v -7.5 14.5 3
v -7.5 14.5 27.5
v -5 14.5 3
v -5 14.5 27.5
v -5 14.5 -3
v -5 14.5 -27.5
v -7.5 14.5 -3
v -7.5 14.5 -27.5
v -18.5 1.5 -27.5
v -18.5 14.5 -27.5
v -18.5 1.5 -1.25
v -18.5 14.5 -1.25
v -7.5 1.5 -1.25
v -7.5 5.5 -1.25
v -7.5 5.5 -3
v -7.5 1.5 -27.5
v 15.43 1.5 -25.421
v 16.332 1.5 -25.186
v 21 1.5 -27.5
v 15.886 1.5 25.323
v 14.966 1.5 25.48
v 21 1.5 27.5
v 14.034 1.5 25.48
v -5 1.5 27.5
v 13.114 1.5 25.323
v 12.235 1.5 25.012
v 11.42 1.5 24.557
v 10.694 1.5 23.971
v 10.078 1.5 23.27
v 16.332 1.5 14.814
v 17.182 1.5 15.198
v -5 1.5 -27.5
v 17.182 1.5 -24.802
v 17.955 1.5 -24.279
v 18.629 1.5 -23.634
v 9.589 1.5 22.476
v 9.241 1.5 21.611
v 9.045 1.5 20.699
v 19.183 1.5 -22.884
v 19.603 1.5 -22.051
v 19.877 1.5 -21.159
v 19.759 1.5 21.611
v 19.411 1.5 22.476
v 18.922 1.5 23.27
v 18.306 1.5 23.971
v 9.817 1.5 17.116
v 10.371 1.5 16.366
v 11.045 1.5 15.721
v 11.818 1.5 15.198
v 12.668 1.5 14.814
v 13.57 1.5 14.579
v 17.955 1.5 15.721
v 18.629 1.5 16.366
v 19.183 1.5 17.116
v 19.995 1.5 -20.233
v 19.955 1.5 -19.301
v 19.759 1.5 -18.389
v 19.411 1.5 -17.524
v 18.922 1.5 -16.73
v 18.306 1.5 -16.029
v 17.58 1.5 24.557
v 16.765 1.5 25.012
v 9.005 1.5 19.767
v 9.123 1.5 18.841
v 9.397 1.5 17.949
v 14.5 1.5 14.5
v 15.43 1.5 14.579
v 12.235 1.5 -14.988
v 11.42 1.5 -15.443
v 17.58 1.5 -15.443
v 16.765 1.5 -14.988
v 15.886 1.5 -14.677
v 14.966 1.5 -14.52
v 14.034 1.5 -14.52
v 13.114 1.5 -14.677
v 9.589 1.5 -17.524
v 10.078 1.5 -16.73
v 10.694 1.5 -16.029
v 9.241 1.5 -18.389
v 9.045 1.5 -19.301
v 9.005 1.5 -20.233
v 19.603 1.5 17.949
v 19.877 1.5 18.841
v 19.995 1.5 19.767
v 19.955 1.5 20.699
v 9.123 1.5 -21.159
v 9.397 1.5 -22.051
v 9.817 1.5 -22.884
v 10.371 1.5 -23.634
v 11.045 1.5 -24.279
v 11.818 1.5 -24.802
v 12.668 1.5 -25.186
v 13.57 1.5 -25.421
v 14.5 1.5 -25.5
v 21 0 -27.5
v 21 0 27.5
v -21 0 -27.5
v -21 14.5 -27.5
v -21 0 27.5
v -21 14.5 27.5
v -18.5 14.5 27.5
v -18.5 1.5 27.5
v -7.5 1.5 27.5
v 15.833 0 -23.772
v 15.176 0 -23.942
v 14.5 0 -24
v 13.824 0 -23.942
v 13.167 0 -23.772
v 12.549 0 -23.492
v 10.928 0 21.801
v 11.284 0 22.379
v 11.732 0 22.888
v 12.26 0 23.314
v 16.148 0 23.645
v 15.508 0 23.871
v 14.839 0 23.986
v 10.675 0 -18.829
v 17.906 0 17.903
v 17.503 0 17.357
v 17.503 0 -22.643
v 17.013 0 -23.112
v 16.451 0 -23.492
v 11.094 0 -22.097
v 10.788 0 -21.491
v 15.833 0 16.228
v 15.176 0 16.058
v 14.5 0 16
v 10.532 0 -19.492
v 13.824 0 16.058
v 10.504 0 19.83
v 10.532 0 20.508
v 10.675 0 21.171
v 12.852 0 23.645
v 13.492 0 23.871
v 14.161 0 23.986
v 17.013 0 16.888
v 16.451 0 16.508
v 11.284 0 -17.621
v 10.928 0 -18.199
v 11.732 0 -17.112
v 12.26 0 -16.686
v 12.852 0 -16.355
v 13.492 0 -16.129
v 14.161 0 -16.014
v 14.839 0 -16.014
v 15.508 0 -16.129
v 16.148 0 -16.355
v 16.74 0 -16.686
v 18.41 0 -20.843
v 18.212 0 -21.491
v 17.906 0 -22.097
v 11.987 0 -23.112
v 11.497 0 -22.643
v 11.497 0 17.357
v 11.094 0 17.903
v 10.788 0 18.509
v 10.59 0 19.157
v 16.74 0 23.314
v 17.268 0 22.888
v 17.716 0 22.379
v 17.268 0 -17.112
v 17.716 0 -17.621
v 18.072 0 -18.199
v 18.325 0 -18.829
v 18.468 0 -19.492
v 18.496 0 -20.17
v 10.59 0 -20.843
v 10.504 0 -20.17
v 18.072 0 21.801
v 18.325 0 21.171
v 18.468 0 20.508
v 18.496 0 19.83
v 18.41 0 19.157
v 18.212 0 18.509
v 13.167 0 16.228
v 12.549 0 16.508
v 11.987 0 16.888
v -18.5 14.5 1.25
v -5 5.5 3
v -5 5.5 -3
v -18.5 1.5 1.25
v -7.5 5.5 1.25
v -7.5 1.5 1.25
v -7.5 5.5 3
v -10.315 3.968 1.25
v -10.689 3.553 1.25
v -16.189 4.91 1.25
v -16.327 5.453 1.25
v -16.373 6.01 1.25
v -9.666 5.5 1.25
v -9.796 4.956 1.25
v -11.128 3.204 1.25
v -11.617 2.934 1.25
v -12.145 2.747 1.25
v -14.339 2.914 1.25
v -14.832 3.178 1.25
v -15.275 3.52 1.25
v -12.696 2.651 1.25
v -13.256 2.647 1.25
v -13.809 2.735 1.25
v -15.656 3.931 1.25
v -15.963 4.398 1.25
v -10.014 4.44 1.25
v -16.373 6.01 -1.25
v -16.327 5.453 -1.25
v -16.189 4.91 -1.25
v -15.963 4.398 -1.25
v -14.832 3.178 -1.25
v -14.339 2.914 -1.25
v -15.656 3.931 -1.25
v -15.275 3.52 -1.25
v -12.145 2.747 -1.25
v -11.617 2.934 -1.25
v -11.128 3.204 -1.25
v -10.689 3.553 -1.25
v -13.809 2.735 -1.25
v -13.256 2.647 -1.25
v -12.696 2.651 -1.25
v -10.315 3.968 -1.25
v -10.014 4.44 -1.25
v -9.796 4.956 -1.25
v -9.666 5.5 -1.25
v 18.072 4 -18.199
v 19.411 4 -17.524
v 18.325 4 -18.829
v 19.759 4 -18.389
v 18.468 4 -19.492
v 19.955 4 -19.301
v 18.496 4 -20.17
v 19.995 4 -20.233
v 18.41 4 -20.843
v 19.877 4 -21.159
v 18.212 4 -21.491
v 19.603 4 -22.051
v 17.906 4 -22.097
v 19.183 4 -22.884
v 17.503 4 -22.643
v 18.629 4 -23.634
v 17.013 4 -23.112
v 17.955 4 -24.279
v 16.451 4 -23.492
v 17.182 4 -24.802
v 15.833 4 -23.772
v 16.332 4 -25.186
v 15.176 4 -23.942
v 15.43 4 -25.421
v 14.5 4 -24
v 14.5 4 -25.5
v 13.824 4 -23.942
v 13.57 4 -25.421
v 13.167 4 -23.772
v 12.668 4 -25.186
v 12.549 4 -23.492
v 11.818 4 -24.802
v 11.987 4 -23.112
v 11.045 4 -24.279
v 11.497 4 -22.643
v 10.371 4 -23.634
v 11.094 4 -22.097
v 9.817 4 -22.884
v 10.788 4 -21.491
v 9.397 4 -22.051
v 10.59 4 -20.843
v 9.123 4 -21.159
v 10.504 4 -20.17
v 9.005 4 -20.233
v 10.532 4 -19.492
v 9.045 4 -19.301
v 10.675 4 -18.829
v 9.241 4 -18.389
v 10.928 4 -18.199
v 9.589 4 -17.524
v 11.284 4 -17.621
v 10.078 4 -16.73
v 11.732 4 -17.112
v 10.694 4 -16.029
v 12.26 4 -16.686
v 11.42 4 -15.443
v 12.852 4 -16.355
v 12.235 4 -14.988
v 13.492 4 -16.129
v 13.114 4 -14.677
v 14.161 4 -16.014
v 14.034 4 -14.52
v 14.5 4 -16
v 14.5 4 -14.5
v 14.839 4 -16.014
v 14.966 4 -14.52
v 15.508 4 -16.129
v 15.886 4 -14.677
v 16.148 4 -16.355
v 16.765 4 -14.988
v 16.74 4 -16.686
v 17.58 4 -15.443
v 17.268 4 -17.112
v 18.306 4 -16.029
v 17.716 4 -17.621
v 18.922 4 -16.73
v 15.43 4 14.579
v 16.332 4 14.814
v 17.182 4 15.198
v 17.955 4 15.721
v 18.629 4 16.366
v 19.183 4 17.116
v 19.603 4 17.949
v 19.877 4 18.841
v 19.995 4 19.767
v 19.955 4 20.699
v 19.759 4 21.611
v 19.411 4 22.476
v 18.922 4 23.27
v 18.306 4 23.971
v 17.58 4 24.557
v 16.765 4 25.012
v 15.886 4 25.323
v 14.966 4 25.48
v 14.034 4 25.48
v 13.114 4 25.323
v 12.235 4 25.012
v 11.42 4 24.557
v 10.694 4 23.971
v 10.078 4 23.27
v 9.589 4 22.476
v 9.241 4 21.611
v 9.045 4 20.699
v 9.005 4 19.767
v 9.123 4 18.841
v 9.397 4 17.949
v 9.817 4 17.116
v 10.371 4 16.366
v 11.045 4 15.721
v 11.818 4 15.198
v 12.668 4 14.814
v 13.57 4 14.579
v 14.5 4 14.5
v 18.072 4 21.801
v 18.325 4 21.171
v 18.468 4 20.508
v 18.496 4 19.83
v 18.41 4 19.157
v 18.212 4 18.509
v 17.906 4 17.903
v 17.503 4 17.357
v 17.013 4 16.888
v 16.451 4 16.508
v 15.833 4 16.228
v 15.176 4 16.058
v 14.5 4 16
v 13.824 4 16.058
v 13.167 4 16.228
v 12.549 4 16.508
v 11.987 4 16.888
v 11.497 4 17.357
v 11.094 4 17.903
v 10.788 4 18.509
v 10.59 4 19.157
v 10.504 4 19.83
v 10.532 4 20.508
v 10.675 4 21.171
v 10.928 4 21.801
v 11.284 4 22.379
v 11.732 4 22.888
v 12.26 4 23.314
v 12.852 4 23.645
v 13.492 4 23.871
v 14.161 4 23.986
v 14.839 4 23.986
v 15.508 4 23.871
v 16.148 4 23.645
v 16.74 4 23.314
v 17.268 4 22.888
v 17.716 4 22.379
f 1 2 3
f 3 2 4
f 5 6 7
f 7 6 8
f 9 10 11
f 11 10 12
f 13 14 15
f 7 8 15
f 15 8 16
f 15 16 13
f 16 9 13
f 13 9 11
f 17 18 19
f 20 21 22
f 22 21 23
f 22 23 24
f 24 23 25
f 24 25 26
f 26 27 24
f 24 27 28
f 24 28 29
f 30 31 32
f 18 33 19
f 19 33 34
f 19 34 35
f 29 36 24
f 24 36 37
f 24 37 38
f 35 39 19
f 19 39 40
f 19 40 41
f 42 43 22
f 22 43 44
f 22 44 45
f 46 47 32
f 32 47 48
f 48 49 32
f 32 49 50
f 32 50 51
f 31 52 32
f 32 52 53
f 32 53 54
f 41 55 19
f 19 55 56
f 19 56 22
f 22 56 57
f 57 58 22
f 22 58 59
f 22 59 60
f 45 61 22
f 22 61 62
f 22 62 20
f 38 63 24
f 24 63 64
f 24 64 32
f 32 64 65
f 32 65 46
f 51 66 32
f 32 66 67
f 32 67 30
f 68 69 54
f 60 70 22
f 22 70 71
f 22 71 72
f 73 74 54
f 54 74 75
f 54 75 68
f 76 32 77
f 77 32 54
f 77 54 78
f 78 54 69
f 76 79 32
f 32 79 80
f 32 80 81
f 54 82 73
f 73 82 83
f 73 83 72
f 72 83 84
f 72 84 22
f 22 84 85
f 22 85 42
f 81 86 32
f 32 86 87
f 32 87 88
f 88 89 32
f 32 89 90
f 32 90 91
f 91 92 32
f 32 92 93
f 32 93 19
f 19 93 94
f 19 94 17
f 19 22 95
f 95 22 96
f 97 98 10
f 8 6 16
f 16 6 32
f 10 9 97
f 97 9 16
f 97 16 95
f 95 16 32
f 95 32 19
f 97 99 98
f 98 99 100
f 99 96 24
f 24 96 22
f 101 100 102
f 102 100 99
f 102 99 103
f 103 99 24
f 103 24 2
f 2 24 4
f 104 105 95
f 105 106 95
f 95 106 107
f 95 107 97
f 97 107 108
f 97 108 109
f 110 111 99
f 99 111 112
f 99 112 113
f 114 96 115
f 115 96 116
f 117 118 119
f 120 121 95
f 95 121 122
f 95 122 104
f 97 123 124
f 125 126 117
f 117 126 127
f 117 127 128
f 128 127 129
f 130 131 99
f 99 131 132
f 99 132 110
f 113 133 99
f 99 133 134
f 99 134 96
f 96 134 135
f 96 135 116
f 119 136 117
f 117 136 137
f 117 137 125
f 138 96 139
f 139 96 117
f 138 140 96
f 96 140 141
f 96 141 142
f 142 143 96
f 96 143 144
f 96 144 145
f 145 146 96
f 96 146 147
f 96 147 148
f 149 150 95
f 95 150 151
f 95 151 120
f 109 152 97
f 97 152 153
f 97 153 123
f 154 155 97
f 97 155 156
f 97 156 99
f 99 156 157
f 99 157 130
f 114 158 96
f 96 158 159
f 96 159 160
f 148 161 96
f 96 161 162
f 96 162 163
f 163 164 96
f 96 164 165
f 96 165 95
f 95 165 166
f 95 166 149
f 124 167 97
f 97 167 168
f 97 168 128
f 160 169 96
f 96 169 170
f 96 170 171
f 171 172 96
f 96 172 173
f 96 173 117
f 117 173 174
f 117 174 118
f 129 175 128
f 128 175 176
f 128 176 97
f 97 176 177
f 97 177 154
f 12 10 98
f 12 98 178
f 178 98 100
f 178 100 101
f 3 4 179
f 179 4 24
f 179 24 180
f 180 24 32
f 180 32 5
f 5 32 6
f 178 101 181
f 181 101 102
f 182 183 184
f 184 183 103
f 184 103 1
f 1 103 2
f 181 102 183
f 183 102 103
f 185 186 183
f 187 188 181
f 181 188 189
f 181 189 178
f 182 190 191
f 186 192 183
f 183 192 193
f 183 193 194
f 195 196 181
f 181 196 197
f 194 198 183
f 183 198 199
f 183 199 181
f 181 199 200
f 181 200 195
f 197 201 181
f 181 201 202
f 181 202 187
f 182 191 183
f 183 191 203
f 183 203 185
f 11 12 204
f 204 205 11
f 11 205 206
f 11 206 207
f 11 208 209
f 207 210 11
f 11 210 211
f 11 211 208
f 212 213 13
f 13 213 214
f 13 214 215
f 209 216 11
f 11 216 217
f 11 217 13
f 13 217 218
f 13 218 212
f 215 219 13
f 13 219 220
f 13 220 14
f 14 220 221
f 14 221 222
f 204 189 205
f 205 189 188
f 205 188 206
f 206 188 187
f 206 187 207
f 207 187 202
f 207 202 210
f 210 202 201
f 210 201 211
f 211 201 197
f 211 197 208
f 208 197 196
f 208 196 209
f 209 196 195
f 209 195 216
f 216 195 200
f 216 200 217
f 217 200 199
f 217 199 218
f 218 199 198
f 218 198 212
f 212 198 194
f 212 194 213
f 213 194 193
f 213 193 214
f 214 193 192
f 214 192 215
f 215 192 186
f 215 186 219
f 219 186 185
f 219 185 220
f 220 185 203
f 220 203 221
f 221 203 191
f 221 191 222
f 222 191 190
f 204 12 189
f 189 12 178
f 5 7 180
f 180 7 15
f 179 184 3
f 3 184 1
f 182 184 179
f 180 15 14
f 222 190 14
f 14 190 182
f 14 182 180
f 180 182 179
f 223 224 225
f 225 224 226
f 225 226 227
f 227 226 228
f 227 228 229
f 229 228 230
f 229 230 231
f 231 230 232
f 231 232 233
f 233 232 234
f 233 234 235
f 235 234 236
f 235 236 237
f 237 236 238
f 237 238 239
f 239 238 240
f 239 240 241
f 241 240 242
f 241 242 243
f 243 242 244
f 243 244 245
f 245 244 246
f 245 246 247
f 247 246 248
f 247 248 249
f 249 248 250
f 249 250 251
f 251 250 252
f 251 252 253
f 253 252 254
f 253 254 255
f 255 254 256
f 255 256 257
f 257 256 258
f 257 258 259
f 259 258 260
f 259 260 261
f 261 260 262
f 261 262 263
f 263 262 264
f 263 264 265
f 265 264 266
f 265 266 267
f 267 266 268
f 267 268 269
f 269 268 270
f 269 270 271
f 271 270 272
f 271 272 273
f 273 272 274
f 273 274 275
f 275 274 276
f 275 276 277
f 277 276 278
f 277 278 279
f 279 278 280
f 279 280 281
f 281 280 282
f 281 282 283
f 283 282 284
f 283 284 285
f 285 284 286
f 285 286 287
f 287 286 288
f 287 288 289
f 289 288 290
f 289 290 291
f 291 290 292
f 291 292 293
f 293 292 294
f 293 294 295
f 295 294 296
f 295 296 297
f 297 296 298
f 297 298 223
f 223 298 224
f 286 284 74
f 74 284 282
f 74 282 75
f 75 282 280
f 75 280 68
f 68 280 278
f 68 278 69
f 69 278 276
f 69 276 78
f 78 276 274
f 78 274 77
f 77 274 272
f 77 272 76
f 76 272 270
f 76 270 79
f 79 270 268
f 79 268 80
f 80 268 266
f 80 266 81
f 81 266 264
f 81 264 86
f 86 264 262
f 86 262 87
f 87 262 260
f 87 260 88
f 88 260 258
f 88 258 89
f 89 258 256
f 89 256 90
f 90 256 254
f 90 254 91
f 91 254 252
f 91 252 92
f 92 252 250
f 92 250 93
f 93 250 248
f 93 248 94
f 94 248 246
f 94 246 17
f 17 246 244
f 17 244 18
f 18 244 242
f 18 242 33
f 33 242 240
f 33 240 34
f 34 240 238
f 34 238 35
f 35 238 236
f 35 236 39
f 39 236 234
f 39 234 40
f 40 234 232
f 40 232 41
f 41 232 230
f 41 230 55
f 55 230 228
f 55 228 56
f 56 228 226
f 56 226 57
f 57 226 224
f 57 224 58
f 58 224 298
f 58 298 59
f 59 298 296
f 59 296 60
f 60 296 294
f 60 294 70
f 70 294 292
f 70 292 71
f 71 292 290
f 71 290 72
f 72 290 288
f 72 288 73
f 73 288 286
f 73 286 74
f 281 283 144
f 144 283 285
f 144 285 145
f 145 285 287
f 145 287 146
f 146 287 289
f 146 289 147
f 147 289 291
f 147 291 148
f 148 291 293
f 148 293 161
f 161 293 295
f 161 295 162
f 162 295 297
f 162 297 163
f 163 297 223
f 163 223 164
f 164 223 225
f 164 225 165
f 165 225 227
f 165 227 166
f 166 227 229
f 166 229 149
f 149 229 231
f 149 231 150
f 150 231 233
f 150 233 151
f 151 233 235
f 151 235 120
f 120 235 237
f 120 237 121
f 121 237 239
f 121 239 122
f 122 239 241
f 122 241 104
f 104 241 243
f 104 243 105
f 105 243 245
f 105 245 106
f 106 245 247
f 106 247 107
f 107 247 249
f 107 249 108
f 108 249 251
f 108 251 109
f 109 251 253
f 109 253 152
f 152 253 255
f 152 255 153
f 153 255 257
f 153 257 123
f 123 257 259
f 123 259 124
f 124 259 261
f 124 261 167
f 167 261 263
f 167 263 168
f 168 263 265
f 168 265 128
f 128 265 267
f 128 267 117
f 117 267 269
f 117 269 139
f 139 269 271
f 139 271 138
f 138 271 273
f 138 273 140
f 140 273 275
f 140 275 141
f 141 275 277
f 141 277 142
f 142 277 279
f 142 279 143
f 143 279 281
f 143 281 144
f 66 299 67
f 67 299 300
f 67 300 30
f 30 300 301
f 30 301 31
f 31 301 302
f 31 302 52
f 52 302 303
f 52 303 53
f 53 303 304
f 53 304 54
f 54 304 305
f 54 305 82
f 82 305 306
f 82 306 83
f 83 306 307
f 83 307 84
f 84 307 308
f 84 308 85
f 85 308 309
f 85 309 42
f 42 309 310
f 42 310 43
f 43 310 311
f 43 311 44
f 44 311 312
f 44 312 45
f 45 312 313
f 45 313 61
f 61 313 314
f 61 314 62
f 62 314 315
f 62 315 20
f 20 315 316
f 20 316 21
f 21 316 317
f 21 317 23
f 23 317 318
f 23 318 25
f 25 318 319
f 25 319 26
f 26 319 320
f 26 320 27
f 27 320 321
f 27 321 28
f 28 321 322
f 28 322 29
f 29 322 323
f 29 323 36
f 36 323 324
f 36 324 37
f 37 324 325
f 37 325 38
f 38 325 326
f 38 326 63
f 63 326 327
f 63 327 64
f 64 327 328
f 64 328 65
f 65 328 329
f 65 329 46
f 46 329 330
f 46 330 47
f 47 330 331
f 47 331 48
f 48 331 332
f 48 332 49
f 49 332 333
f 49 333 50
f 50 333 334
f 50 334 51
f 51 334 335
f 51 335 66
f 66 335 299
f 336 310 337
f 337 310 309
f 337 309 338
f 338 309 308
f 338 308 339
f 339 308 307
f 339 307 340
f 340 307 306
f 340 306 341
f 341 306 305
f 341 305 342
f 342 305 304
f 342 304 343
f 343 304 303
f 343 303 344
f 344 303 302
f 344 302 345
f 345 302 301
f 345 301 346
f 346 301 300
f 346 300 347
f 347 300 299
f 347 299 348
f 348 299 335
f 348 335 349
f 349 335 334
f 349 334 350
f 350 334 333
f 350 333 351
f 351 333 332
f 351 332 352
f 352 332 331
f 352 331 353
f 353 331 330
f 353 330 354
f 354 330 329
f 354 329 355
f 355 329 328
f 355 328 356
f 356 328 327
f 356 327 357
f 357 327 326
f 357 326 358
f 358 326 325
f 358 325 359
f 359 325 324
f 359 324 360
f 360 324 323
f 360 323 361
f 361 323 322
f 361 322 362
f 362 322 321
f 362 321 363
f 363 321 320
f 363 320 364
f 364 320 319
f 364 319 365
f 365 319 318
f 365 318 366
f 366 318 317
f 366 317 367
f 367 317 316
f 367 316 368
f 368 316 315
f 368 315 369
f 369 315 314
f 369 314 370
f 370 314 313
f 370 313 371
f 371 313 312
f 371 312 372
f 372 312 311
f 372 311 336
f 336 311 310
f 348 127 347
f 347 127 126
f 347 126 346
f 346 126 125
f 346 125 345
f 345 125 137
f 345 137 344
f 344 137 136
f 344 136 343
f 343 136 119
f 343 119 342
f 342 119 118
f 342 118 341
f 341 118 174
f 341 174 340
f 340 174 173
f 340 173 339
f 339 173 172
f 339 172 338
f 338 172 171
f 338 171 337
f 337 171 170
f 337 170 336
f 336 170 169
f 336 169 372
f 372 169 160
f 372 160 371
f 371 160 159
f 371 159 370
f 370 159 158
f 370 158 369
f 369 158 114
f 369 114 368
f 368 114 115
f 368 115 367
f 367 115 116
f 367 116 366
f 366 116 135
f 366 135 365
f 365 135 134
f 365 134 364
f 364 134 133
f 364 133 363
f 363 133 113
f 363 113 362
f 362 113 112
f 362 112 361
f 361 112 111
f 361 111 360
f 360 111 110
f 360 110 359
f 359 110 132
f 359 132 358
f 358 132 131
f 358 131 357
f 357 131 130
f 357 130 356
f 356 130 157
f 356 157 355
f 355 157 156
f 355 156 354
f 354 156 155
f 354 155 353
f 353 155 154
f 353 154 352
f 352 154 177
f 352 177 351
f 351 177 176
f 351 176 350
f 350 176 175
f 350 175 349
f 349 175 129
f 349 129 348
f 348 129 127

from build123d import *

# Parameters (mm, degrees)
SKETCH1_W                       = 42
SKETCH1_H                       = 55
BOSS_EXTRUDE1_DEPTH             = 1.5
BOSS_EXTRUDE2_REACH             = 29.5
SKETCH2_W                       = 16
SKETCH2_H                       = 13
BOSS_EXTRUDE2_DIRECTION_2_REACH = 29.5
SKETCH3_W                       = 11
SKETCH3_H                       = 13
CUT_EXTRUDE2_DEPTH              = 56
SKETCH6_W                       = 16
SKETCH6_H                       = 13.028292271
BOSS_EXTRUDE3_DEPTH             = 1.25
CUT_EXTRUDE5_DEPTH              = 2.5
SKETCH8_W                       = 6
SKETCH8_H                       = 9
CUT_EXTRUDE6_DEPTH              = 6.5
SKETCH9_R                       = 5.5
SKETCH9_R_2                     = 4
BOSS_EXTRUDE4_DEPTH             = 2.5
SKETCH11_R                      = 4
CUT_EXTRUDE7_DEPTH              = 2.5


with BuildPart() as part:
    # Sketch1 → Boss-Extrude1 (new body)
    with BuildSketch(Plane(origin=(0, 0, 0), x_dir=(1, 0, 0), z_dir=(0, 1, 0))):
        Rectangle(SKETCH1_W, SKETCH1_H)
    extrude(amount=BOSS_EXTRUDE1_DEPTH)

    # Boss-Extrude2: up to this face of the body (flat: up to its plane)
    boss_extrude2_end = Plane(part.part.faces().sort_by_distance((0, 0.75, 27.5))[0])
    # Sketch2 → Boss-Extrude2 (add, up to the picked face)
    with BuildSketch(Plane.XY, mode=Mode.PRIVATE) as boss_extrude2_sk1:
        with Locations((-13, 8)):
            Rectangle(SKETCH2_W, SKETCH2_H)
    boss_extrude2_tool1 = split(extrude(boss_extrude2_sk1.sketch, amount=BOSS_EXTRUDE2_REACH, mode=Mode.PRIVATE), bisect_by=boss_extrude2_end, keep=Keep.BOTH, mode=Mode.PRIVATE)
    add(boss_extrude2_tool1.solids().sort_by_distance((-13, 8, 0))[0])

    # Boss-Extrude2 direction 2: up to this face of the body (flat: up to its plane)
    boss_extrude2_direction_2_end = Plane(part.part.faces().sort_by_distance((0, 0.75, -27.5))[0])
    # Sketch2 → Boss-Extrude2 direction 2 (add, up to the picked face)
    with BuildSketch(Plane.XY, mode=Mode.PRIVATE) as boss_extrude2_direction_2_sk1:
        with Locations((-13, 8)):
            Rectangle(SKETCH2_W, SKETCH2_H)
    boss_extrude2_direction_2_tool1 = split(extrude(boss_extrude2_direction_2_sk1.sketch, amount=-BOSS_EXTRUDE2_DIRECTION_2_REACH, mode=Mode.PRIVATE), bisect_by=boss_extrude2_direction_2_end, keep=Keep.BOTH, mode=Mode.PRIVATE)
    add(boss_extrude2_direction_2_tool1.solids().sort_by_distance((-13, 8, 0))[0])

    # Sketch3 → Cut-Extrude2 (cut, through all)
    with BuildSketch(Plane.XY.offset(27.5)):
        with Locations((-13, 8)):
            Rectangle(SKETCH3_W, SKETCH3_H)
    extrude(amount=-CUT_EXTRUDE2_DEPTH, mode=Mode.SUBTRACT)

    # Sketch6 → Boss-Extrude3 (add, symmetric)
    with BuildSketch(Plane.XY):
        with Locations((-13, 7.985853865)):
            Rectangle(SKETCH6_W, SKETCH6_H)
    extrude(amount=BOSS_EXTRUDE3_DEPTH, both=True)

    # Sketch7 → Cut-Extrude5 (cut)
    with BuildSketch(Plane.XY.offset(1.25)):
        with BuildLine():
            Line((-7.5, 14.5), (-18.5, 14.5))
            Line((-18.5, 14.5), (-16.373292693, 6.010430414))
            ThreePointArc((-16.373292693, 6.010430414), (-13, 2.637137721), (-9.626707307, 6.010430414))
            Line((-9.626707307, 6.010430414), (-7.5, 14.5))
        make_face()
    extrude(amount=-CUT_EXTRUDE5_DEPTH, mode=Mode.SUBTRACT)

    # Sketch8 → Cut-Extrude6 (cut)
    with BuildSketch(Plane(origin=(-5, 0, 0), x_dir=(0, 0, -1), z_dir=(1, 0, 0))):
        with Locations((0, 10)):
            Rectangle(SKETCH8_W, SKETCH8_H)
    extrude(amount=-CUT_EXTRUDE6_DEPTH, mode=Mode.SUBTRACT)

    # Sketch9 → Boss-Extrude4 (add)
    with BuildSketch(Plane(origin=(0, 1.5, 0), x_dir=(1, 0, 0), z_dir=(0, 1, 0))):
        with Locations((14.5, 20)):
            Circle(SKETCH9_R)
        with Locations((14.5, 20)):
            Circle(SKETCH9_R_2, mode=Mode.SUBTRACT)
    boss_extrude4 = extrude(amount=BOSS_EXTRUDE4_DEPTH)

    # Sketch11 → Cut-Extrude7 (cut)
    with BuildSketch(Plane(origin=(0, 1.5, 0), x_dir=(1, 0, 0), z_dir=(0, 1, 0))):
        with Locations((14.5, 20)):
            Circle(SKETCH11_R)
    cut_extrude7 = extrude(amount=-CUT_EXTRUDE7_DEPTH, mode=Mode.SUBTRACT)

    # Mirror1: Boss-Extrude4, Cut-Extrude7 across plane
    add(boss_extrude4.mirror(Plane.XY))
    add(cut_extrude7.mirror(Plane.XY), mode=Mode.SUBTRACT)


solid = part.part
